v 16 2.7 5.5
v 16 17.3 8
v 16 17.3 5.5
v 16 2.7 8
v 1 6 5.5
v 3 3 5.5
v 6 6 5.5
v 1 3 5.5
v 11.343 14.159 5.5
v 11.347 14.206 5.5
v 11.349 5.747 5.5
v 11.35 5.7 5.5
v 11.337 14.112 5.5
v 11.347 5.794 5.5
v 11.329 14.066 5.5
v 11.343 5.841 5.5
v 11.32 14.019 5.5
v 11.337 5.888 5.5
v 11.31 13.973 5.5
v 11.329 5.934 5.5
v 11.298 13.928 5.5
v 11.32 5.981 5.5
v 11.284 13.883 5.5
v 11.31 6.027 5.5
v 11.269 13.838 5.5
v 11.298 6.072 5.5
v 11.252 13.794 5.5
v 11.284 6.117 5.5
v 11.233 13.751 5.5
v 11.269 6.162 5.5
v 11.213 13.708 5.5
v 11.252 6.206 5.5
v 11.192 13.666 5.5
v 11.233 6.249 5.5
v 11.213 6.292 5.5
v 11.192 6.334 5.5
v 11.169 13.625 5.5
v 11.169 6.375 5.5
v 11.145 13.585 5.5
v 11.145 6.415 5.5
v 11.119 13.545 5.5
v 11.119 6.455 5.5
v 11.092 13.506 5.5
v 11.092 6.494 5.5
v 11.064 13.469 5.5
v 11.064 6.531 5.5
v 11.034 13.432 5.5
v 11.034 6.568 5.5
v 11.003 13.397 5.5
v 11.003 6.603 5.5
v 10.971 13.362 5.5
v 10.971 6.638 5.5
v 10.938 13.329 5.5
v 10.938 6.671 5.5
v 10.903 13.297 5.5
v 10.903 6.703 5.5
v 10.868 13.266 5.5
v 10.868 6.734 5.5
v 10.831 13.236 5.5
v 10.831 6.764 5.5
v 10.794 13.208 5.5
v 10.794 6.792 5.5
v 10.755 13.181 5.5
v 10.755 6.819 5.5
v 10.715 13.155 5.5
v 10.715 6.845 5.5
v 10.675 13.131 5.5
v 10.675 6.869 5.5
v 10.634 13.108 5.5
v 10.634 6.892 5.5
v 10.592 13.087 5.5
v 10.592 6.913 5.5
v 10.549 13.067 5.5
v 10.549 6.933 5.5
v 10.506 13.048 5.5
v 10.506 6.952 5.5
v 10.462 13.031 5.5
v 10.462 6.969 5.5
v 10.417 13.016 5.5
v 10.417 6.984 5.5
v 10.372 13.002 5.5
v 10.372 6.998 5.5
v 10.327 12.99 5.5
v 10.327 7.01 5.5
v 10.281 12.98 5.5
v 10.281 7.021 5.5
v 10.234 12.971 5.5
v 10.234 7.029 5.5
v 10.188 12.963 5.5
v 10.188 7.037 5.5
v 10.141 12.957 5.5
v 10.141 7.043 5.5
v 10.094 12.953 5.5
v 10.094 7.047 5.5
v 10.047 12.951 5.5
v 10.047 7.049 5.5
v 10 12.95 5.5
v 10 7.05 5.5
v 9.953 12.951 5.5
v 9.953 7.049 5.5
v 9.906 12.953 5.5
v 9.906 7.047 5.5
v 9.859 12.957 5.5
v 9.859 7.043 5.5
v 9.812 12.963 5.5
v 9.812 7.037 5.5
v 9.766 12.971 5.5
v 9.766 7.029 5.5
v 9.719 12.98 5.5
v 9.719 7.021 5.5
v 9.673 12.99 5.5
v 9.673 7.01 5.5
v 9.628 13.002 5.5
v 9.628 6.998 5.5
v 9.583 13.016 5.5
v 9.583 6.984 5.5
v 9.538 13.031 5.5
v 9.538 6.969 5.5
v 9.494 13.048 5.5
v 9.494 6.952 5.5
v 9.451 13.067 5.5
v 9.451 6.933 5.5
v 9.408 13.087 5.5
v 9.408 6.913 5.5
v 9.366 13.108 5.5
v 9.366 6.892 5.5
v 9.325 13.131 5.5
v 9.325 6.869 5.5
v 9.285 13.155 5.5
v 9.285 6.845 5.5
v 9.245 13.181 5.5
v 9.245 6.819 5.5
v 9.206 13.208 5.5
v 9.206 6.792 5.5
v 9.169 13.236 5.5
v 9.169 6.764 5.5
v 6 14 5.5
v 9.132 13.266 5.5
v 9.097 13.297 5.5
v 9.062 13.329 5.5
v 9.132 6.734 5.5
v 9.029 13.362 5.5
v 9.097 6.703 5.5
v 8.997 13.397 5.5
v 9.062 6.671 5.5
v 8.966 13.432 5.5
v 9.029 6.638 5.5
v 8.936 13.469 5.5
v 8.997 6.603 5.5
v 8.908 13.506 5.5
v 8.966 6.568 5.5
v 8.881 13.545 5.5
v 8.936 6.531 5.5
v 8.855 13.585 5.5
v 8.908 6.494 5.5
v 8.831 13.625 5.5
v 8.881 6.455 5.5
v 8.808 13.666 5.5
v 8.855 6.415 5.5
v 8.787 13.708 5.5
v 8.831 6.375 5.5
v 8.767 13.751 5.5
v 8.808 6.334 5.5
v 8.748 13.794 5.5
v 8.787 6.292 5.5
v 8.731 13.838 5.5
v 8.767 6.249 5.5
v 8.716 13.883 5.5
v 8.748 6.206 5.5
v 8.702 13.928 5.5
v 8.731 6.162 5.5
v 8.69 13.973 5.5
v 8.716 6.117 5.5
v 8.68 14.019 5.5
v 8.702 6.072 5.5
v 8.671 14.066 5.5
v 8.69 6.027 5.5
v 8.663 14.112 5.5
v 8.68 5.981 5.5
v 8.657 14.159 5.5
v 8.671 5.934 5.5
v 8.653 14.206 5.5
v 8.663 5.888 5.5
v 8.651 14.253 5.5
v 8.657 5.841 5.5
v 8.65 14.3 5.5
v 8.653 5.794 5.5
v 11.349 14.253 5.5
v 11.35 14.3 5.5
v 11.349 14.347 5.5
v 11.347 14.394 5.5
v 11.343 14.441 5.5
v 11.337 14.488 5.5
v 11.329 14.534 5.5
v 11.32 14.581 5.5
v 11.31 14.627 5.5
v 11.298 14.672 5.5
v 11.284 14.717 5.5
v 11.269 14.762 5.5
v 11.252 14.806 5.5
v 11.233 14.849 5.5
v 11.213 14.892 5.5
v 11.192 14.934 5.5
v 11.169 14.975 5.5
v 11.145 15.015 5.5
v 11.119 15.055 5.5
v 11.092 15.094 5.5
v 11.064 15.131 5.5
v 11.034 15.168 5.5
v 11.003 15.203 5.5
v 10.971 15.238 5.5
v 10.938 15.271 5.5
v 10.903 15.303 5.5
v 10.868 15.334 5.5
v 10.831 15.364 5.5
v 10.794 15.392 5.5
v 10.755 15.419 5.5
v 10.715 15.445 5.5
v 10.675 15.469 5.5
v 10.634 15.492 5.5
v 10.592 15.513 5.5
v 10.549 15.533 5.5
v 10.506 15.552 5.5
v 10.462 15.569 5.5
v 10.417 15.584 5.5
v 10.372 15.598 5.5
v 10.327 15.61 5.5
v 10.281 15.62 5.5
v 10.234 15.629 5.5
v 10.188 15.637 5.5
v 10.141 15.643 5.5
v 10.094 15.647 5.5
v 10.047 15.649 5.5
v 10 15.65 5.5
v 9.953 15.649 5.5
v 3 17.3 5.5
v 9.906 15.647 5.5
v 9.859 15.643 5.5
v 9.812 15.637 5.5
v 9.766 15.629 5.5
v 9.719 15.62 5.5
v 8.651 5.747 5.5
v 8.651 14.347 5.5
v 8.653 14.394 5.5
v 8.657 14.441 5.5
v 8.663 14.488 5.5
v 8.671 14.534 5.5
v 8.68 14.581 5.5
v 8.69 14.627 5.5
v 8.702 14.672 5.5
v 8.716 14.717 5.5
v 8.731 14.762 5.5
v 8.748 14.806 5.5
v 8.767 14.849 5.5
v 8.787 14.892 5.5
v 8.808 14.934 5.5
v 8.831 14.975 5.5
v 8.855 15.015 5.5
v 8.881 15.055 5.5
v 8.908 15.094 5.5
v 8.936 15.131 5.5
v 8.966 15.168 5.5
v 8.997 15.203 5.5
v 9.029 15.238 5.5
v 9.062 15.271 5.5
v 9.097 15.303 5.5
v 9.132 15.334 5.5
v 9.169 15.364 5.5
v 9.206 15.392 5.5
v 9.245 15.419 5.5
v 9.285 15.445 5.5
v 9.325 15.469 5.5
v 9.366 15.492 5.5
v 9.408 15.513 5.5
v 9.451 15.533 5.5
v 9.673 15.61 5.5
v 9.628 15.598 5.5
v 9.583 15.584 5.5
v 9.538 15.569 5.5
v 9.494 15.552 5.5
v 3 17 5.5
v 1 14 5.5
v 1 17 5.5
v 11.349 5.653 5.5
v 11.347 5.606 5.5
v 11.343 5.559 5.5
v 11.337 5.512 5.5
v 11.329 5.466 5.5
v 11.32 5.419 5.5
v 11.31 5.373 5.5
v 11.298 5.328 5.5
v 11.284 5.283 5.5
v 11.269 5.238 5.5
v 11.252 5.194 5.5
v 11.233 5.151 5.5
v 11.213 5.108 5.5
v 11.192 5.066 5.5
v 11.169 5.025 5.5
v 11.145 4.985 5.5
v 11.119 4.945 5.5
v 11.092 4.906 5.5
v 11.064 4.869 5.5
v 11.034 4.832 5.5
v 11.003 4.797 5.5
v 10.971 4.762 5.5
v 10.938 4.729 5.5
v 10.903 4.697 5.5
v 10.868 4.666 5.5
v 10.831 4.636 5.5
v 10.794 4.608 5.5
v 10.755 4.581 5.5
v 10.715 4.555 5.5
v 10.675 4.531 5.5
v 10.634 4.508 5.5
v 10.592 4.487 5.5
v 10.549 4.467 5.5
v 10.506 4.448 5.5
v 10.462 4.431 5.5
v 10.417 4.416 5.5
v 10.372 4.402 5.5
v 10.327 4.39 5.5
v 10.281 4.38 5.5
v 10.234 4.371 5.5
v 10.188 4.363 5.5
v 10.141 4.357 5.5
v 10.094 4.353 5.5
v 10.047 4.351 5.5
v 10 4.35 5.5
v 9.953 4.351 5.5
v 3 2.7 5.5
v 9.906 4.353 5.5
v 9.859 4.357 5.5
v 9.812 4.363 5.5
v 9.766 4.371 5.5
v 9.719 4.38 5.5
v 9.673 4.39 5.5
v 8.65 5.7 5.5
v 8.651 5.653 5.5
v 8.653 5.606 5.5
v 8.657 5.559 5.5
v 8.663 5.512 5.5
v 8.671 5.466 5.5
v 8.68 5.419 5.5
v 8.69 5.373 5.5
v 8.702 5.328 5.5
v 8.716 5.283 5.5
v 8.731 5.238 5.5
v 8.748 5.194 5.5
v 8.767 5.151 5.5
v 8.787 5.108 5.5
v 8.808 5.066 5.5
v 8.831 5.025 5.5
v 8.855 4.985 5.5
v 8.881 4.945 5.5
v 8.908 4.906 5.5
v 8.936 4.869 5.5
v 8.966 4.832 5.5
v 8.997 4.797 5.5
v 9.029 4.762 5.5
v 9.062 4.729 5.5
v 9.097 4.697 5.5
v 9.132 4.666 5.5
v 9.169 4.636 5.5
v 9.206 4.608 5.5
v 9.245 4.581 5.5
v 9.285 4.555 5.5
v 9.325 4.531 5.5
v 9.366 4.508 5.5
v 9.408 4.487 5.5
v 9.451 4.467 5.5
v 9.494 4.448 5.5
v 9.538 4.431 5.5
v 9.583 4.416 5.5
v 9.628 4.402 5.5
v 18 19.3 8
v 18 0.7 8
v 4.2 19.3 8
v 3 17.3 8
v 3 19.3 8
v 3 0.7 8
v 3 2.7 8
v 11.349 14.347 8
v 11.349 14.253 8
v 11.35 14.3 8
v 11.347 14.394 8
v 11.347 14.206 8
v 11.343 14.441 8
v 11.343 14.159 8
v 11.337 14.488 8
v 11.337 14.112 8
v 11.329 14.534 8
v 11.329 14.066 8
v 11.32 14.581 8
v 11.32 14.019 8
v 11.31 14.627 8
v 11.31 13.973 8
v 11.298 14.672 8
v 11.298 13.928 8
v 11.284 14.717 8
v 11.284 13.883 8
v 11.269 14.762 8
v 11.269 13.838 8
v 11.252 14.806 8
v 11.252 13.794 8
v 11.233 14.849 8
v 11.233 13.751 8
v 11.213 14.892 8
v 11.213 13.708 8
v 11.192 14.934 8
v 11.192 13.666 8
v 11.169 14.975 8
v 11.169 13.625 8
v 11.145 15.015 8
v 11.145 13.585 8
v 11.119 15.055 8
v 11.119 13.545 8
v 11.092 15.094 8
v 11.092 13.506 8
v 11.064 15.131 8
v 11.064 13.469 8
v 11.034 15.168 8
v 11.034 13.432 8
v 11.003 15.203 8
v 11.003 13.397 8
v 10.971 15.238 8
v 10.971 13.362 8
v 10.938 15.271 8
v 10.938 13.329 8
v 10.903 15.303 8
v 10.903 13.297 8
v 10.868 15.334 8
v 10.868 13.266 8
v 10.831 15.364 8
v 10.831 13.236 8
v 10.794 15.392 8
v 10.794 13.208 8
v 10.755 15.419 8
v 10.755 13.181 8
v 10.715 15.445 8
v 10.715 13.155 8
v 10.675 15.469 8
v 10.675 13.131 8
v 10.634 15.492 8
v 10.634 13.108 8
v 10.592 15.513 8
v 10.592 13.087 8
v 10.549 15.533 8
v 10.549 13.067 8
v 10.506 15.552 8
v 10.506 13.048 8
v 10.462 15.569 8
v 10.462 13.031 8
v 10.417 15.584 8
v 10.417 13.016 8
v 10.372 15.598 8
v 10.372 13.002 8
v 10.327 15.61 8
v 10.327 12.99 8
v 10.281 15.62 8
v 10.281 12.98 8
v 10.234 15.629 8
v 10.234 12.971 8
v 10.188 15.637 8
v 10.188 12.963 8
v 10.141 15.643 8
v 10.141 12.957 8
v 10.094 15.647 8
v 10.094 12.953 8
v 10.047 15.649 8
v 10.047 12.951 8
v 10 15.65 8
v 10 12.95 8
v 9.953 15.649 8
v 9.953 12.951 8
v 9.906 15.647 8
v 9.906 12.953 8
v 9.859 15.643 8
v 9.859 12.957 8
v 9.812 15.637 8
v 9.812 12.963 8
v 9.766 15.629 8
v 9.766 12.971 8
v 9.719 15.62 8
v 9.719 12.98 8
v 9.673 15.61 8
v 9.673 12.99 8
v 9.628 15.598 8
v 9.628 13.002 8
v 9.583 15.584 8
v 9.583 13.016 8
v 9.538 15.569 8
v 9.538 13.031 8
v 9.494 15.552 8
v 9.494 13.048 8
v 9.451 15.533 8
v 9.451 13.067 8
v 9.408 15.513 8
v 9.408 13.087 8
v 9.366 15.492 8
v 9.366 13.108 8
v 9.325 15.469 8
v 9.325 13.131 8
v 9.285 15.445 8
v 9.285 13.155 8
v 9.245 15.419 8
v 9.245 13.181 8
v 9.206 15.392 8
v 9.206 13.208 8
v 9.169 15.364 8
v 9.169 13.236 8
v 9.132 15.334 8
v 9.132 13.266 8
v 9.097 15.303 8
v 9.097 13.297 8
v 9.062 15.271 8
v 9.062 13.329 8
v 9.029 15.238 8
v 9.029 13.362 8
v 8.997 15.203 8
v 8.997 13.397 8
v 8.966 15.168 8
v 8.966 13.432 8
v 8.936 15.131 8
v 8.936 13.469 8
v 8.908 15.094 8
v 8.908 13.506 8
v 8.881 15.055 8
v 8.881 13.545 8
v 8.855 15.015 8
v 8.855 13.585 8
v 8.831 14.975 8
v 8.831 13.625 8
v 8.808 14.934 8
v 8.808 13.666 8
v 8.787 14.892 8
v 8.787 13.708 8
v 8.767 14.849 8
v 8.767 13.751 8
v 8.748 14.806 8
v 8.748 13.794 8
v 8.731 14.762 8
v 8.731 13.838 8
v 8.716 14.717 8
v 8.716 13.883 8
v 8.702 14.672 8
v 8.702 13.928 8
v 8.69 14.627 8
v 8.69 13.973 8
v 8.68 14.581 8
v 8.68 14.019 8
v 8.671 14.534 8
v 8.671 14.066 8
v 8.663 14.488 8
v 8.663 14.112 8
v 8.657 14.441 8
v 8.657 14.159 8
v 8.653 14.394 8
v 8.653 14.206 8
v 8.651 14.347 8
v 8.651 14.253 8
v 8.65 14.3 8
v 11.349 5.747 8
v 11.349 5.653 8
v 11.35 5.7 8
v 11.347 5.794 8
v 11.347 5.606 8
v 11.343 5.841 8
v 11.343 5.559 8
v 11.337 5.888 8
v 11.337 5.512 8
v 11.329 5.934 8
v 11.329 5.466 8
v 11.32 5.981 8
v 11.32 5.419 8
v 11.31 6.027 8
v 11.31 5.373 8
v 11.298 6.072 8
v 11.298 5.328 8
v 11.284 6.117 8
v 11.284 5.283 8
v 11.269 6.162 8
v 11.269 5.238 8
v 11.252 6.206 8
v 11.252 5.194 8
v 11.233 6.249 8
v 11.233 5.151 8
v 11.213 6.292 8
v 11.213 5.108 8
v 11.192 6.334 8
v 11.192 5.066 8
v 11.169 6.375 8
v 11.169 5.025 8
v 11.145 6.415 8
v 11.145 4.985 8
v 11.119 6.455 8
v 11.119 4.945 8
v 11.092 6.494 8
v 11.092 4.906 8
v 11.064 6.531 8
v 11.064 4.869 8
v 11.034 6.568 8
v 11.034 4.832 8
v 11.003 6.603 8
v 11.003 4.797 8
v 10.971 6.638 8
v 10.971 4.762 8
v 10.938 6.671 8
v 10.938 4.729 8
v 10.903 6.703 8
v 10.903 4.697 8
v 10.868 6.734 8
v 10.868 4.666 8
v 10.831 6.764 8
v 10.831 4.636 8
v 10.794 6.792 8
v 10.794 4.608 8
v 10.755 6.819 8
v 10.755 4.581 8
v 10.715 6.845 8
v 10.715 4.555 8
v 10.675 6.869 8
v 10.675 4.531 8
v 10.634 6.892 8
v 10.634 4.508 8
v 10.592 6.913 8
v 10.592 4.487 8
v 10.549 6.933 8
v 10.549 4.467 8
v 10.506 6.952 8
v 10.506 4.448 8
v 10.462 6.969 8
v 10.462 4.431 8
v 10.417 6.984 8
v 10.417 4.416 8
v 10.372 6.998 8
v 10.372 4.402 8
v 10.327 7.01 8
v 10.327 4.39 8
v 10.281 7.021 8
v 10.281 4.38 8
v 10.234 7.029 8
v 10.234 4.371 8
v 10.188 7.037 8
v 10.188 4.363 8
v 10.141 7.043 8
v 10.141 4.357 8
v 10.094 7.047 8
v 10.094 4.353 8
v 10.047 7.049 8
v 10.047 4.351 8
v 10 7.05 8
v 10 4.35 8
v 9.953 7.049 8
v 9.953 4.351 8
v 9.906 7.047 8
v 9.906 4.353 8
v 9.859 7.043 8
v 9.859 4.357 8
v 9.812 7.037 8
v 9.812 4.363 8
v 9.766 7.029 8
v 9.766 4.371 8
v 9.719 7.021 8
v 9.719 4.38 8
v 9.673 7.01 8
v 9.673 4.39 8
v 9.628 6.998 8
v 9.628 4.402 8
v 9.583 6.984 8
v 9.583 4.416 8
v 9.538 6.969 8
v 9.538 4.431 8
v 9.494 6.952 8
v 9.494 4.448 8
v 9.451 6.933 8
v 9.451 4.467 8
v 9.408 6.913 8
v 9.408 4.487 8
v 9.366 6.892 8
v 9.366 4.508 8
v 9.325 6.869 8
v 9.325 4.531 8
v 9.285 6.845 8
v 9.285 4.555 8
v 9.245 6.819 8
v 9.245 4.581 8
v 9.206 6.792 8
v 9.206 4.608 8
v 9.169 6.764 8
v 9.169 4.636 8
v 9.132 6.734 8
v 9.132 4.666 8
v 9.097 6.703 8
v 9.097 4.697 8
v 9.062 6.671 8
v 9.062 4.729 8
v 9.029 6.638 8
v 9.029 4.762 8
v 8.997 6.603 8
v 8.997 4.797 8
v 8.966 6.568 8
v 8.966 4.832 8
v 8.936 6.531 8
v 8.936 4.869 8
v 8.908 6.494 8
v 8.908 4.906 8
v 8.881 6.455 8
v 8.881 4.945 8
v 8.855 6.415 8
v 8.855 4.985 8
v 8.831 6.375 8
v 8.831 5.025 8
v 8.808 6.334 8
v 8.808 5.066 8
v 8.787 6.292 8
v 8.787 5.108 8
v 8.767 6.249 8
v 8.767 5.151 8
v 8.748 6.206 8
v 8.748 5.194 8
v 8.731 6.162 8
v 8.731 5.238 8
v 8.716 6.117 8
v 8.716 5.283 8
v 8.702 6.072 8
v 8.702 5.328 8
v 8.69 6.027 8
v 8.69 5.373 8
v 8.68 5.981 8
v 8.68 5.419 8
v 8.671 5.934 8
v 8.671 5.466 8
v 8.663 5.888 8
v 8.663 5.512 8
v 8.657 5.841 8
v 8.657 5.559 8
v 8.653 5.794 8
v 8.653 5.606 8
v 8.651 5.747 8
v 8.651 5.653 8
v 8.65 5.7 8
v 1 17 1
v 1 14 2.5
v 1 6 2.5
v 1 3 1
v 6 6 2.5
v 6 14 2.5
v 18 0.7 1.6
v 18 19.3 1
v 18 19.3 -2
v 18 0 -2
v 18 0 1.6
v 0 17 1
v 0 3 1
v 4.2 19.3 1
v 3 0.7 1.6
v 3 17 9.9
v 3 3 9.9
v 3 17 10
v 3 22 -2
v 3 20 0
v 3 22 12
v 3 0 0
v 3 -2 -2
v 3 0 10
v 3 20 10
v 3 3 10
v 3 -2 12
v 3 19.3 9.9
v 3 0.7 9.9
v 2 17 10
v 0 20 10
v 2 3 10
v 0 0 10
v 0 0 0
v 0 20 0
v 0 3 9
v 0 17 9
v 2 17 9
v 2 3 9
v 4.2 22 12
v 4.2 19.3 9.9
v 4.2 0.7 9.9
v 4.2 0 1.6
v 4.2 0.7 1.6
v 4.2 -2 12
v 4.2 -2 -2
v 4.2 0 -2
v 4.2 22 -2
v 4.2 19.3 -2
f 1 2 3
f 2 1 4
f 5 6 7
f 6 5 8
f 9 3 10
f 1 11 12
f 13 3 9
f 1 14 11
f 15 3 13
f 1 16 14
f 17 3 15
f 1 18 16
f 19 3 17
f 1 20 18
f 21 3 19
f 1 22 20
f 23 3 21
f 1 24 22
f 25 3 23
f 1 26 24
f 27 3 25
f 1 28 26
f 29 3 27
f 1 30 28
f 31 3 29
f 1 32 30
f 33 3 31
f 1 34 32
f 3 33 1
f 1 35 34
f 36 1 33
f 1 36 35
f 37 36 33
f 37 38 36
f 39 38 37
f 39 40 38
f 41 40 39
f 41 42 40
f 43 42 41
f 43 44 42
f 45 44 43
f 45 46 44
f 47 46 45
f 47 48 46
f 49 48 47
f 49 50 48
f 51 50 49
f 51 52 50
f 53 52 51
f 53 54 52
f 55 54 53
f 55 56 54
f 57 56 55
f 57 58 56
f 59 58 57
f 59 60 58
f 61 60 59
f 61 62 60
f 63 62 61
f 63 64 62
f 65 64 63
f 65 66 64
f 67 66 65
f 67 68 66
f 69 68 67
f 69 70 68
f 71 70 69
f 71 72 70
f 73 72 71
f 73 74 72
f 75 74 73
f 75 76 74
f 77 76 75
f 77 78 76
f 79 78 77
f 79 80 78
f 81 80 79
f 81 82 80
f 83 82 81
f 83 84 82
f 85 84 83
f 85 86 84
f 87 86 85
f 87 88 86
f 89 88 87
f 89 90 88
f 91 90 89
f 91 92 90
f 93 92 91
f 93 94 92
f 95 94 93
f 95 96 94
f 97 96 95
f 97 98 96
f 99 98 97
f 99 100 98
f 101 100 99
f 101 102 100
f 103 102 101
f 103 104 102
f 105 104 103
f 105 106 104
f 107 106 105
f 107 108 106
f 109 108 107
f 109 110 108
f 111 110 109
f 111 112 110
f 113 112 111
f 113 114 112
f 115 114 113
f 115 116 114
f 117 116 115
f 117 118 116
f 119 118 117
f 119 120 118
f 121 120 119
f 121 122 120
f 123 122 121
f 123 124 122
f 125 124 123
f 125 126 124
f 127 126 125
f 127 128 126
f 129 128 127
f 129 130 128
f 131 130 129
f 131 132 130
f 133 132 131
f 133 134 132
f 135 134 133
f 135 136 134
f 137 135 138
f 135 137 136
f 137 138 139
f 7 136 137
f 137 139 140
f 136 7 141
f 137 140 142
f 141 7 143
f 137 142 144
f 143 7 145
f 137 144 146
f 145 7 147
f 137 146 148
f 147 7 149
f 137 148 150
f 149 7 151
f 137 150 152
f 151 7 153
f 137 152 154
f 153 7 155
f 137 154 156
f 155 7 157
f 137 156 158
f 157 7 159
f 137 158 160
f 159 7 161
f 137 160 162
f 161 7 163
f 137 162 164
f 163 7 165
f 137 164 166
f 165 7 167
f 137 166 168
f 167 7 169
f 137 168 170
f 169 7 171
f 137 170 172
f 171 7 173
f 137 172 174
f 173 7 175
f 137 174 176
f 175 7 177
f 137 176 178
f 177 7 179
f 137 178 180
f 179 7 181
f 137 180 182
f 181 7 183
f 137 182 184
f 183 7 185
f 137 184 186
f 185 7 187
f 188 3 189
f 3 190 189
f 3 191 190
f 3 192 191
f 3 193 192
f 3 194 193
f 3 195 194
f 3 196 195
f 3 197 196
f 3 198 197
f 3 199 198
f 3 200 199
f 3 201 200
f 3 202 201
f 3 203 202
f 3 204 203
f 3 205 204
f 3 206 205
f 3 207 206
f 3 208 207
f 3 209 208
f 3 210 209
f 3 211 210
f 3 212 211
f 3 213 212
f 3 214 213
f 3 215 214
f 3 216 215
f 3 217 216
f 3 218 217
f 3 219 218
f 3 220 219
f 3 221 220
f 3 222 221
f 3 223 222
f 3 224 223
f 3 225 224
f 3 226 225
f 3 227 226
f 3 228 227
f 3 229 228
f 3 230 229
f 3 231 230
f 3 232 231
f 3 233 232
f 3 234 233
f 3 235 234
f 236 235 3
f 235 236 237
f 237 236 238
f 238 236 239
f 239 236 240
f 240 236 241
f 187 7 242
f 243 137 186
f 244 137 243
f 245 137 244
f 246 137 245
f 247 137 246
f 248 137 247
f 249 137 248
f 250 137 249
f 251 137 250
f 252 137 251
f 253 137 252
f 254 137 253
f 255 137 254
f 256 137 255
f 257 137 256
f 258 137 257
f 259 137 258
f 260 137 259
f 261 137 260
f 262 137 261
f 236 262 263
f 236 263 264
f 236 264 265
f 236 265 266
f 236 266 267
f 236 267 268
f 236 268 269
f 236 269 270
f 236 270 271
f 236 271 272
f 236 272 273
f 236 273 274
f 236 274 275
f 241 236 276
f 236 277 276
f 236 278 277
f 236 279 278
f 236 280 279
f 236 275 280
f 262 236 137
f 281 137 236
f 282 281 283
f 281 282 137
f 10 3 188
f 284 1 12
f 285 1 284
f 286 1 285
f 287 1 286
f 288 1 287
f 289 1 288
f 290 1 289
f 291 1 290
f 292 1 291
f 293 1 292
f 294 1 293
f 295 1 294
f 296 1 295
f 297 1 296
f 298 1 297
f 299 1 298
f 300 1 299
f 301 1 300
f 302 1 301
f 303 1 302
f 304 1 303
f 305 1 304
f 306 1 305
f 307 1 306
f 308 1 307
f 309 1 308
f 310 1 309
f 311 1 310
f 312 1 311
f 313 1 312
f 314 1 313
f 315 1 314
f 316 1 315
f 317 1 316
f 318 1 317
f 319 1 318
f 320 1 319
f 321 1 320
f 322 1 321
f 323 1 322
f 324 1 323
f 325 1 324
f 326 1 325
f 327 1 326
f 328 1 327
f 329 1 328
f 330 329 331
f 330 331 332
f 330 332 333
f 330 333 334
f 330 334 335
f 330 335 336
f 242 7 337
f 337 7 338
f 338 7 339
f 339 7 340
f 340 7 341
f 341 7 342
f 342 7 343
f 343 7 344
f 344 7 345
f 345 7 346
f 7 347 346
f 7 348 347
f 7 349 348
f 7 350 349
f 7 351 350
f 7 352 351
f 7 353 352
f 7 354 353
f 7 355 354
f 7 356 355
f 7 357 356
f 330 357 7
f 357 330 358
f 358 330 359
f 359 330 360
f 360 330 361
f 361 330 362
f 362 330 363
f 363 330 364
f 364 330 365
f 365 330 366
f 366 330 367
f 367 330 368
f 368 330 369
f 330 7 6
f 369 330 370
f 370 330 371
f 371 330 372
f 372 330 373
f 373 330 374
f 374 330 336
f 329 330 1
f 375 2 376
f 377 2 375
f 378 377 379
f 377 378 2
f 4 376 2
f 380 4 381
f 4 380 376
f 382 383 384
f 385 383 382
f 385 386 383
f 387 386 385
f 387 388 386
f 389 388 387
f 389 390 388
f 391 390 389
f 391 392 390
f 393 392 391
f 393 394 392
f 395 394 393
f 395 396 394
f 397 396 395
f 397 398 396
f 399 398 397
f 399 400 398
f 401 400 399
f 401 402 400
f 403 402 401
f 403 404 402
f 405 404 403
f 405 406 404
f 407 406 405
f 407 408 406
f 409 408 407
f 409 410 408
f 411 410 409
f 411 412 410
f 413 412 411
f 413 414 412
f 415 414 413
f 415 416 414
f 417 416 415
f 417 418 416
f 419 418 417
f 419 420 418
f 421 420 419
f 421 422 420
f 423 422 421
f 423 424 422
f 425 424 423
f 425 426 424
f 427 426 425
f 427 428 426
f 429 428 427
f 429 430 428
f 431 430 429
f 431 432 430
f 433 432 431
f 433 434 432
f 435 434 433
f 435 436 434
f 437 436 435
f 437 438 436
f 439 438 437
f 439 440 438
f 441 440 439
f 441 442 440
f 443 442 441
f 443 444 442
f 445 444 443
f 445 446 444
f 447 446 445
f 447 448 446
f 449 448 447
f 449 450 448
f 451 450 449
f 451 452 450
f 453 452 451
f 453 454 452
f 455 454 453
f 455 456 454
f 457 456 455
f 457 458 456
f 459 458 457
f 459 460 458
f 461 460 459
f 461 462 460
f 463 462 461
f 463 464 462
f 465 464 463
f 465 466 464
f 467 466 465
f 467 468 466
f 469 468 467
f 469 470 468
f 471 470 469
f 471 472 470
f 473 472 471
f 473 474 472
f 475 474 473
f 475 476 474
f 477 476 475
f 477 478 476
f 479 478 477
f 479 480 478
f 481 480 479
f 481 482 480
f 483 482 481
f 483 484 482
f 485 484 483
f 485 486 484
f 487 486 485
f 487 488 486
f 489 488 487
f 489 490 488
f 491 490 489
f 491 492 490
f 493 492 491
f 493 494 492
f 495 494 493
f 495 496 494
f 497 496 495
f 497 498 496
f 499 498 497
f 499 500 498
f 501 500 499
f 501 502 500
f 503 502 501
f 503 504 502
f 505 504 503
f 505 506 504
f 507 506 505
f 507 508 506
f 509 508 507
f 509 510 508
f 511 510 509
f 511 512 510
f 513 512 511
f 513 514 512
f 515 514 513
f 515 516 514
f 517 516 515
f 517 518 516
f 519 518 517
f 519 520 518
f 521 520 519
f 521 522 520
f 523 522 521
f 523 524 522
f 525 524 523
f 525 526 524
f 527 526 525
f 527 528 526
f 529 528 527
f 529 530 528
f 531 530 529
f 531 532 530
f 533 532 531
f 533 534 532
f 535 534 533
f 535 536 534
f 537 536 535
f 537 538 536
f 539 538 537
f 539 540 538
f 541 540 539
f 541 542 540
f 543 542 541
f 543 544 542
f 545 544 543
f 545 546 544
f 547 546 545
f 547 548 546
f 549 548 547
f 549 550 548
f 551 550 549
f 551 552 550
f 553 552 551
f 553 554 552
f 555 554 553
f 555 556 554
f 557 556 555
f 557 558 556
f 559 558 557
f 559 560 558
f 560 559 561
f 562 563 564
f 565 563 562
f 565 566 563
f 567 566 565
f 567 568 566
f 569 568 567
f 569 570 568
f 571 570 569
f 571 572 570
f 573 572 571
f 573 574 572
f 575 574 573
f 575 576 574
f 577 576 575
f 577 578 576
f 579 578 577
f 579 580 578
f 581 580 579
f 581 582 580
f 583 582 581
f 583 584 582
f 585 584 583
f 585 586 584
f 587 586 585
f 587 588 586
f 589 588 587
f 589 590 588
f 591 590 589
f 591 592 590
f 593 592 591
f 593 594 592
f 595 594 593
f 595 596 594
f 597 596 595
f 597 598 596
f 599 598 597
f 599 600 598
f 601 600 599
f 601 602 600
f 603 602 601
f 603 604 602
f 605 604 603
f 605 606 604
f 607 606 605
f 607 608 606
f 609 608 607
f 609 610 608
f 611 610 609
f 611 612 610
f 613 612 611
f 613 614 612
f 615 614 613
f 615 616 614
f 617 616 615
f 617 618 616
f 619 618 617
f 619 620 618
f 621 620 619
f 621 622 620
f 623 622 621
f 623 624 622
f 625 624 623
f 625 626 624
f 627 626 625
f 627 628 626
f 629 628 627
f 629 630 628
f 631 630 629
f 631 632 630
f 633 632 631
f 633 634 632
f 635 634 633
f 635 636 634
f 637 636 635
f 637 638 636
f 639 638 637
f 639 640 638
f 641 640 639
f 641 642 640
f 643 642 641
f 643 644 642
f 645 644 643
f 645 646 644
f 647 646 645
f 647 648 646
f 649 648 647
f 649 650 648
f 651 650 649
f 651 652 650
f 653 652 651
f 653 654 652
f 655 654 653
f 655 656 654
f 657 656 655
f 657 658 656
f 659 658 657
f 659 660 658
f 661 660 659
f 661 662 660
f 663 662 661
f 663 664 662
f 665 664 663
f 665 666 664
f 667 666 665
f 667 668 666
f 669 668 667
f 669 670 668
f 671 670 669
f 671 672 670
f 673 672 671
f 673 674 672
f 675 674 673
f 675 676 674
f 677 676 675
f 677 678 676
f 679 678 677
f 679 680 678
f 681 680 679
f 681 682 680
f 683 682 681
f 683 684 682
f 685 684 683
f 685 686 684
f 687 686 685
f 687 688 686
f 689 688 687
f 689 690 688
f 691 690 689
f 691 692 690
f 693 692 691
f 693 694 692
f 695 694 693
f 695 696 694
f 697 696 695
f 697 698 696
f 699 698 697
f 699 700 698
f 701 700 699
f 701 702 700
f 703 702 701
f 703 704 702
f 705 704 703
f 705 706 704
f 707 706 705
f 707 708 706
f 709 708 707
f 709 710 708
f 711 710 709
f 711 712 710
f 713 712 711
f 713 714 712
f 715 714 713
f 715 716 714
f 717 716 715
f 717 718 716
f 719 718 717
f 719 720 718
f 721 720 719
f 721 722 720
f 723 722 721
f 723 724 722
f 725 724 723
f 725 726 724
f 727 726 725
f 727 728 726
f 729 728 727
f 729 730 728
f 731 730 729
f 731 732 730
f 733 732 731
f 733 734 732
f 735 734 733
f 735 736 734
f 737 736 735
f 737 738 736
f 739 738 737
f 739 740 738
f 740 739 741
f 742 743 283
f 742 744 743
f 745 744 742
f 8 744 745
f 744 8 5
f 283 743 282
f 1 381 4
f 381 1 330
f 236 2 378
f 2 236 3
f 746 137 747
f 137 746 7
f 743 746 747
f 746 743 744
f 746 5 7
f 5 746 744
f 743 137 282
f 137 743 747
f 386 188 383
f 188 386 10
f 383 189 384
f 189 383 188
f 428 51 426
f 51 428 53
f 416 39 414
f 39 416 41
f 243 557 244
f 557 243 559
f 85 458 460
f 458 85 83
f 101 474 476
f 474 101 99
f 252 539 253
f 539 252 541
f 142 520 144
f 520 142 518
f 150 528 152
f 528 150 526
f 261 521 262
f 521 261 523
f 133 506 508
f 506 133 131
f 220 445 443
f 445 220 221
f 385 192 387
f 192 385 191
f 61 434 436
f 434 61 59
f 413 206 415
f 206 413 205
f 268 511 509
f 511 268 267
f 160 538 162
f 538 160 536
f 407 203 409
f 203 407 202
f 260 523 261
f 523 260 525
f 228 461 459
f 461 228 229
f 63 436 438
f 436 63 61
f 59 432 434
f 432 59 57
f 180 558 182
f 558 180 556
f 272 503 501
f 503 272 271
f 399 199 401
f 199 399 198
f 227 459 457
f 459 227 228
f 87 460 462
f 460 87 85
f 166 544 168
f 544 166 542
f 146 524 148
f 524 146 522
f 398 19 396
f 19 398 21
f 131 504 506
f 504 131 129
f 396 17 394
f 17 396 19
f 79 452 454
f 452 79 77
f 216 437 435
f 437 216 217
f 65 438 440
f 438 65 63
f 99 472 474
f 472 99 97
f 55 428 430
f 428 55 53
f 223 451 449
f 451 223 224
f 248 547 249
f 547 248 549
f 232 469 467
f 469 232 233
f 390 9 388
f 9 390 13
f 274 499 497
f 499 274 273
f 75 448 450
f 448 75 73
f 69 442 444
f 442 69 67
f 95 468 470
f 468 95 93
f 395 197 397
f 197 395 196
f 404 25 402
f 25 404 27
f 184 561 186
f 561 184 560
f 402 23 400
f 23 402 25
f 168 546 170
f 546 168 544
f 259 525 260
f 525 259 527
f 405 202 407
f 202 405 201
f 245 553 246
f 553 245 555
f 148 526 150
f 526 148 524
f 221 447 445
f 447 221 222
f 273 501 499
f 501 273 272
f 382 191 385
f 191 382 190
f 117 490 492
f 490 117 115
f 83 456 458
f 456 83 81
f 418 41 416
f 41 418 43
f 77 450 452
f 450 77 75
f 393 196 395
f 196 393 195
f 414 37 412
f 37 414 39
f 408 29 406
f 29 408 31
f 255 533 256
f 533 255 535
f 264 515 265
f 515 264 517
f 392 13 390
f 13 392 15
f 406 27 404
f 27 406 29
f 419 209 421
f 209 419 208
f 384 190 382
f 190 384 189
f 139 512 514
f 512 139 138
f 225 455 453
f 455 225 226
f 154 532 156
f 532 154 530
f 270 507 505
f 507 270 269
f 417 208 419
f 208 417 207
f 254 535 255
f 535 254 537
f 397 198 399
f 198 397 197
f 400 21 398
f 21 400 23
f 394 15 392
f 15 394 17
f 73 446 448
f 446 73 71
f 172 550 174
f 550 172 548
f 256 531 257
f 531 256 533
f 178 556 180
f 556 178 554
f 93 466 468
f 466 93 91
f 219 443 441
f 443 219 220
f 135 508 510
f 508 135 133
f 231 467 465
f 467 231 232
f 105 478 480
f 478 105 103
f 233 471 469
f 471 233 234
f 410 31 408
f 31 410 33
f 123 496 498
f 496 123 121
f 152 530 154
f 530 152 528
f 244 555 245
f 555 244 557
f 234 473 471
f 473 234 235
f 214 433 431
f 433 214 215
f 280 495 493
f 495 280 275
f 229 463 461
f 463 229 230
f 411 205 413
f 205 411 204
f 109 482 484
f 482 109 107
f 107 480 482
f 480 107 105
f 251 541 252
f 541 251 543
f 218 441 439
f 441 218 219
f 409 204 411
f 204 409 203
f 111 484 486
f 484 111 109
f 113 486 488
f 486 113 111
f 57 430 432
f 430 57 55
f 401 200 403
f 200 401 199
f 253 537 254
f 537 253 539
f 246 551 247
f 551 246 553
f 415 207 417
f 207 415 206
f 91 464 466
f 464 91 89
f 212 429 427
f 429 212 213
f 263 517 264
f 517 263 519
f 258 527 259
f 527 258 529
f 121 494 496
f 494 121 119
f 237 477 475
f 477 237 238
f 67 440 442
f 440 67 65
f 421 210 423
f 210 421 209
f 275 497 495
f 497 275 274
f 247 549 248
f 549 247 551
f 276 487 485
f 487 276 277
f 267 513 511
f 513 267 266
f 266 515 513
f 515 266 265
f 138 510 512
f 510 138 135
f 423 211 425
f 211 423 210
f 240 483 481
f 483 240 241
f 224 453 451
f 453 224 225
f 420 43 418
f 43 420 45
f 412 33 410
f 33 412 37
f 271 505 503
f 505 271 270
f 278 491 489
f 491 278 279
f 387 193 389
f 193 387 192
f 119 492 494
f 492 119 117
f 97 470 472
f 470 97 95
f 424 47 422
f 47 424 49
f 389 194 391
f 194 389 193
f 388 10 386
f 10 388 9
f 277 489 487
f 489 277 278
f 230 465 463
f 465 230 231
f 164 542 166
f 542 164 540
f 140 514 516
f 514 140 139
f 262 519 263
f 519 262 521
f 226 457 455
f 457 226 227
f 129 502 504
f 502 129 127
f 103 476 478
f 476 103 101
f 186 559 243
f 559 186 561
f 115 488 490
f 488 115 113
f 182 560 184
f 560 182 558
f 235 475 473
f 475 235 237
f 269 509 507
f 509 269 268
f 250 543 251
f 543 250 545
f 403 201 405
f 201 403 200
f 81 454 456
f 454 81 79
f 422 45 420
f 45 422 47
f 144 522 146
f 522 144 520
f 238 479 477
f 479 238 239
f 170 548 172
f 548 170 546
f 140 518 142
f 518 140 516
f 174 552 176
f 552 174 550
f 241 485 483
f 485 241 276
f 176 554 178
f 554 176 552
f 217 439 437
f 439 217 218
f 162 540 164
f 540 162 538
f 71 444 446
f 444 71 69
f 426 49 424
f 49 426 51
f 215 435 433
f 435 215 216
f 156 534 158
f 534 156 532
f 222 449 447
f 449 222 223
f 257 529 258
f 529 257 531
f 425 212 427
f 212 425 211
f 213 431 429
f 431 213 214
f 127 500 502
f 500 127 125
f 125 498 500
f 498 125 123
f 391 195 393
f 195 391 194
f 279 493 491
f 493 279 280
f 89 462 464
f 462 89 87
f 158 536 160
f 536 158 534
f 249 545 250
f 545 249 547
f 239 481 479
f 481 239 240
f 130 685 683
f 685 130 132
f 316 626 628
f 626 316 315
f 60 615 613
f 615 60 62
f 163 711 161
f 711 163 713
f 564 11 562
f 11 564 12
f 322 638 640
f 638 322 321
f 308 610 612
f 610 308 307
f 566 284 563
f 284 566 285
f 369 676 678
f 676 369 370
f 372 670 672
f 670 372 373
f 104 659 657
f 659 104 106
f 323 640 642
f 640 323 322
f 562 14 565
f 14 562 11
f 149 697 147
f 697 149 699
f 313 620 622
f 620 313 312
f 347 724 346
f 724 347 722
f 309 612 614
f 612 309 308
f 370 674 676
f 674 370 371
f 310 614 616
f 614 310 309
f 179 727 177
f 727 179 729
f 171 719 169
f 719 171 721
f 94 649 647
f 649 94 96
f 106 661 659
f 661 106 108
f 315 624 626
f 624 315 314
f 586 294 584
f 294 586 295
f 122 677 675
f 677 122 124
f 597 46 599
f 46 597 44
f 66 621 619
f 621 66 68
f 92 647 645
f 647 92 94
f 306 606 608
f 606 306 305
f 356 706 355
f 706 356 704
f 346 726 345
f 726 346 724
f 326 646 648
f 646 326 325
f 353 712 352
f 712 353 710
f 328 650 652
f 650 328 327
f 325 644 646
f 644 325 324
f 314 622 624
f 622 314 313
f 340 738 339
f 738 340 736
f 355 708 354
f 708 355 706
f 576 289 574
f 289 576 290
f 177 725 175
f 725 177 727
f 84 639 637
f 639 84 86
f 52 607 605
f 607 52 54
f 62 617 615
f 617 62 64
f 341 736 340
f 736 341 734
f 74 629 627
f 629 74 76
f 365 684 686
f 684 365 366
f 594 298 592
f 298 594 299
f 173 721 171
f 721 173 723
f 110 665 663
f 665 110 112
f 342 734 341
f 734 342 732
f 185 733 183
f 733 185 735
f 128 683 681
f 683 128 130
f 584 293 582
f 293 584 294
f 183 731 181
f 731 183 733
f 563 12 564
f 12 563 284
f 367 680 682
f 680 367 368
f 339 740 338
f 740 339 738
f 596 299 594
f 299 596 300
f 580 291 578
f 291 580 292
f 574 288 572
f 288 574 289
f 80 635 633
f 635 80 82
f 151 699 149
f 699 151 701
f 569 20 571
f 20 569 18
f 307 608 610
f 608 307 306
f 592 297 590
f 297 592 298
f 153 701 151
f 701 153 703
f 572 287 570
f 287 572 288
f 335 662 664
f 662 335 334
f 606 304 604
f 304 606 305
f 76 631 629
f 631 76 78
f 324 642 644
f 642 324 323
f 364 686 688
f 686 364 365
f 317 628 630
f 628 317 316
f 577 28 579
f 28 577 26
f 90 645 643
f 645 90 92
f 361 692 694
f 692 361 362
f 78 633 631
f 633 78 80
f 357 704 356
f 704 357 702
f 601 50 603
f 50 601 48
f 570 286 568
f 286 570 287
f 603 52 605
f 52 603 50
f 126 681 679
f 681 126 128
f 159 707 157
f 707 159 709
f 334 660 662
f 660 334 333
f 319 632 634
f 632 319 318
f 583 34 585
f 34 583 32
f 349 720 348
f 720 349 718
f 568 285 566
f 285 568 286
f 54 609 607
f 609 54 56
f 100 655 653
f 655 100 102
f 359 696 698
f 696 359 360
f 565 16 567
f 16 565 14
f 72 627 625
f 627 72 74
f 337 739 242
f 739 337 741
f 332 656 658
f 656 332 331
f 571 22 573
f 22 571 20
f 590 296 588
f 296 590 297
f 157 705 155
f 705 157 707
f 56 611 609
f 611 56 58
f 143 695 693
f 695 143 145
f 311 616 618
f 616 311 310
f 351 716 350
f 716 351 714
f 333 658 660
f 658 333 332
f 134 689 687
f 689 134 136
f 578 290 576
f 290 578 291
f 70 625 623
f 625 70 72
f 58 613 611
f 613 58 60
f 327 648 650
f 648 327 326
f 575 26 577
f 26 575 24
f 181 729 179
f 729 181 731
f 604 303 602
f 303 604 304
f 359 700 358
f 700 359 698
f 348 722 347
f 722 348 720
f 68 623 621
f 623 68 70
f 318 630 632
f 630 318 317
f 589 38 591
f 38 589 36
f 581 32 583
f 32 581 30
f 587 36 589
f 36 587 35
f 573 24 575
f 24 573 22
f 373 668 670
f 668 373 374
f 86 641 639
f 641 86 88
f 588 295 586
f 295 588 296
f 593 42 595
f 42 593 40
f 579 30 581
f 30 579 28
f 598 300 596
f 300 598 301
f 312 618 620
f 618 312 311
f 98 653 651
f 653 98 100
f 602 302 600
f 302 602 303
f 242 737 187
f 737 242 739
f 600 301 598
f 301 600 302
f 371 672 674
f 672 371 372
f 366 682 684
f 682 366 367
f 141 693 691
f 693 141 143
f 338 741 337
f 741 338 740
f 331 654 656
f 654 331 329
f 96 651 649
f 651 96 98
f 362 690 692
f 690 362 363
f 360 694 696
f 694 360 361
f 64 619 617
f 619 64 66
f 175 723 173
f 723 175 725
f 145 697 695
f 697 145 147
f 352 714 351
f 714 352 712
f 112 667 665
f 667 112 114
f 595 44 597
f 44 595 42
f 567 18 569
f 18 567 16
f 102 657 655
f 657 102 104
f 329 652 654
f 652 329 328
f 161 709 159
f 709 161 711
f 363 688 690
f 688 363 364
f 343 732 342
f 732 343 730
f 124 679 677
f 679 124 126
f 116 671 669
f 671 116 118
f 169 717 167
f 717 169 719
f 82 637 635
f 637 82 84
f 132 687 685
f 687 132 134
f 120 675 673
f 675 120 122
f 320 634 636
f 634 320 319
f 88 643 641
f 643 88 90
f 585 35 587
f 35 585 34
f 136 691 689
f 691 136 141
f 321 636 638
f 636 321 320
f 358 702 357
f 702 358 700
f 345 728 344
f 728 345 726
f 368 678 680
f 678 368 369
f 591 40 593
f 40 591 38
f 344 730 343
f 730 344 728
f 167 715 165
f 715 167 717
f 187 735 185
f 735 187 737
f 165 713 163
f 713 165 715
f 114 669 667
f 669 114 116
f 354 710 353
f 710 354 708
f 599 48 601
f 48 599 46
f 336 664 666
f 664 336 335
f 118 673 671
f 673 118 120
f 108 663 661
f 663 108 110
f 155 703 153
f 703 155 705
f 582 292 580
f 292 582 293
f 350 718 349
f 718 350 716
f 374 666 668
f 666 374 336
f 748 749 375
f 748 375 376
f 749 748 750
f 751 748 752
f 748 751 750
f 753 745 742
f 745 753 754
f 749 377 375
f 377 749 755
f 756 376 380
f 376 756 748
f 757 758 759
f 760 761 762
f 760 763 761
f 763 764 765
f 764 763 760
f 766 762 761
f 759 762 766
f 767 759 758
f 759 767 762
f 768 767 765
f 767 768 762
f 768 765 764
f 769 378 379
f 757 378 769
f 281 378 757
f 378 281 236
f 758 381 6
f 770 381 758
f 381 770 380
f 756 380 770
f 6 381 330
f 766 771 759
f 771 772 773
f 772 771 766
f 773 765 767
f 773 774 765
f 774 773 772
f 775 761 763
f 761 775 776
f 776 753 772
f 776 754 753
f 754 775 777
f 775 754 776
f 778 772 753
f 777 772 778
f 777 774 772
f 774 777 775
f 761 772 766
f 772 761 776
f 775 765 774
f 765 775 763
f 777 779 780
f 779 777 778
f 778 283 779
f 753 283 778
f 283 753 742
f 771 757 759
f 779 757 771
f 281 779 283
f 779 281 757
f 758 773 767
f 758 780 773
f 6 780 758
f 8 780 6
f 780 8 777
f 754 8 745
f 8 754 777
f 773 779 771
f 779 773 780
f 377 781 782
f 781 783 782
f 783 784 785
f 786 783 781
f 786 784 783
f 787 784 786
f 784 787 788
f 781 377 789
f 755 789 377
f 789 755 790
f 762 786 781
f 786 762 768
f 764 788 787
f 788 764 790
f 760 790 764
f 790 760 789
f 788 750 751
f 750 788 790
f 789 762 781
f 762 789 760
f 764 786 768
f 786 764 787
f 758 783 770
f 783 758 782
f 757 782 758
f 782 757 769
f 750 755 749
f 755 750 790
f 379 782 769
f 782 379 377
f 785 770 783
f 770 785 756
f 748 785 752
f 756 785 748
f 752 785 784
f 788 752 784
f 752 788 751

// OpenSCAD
// file: hggh/mico_usb_breakout_holder_green.scad
USB_PCB_SIZE_X = 15;
USB_PCB_SIZE_Y = 14.6;
USB_PCB_SIZE_Z =  2.5;

HOLDER_SIZE_X = USB_PCB_SIZE_X + 2;
HOLDER_SIZE_Y = USB_PCB_SIZE_Y + 4;

USB_CONN_X = 5.0;
USB_CONN_Y = 8.0;
USB_CONN_Z = 3.0;

module _pcb_micro_usb_breakout_green() {
    difference() {
        union() {
            cube([USB_PCB_SIZE_X, USB_PCB_SIZE_Y, USB_PCB_SIZE_Z]);
            translate([0, (USB_PCB_SIZE_Y-USB_CONN_Y)/2, USB_PCB_SIZE_Z]) {
                cube([USB_CONN_X, USB_CONN_Y, USB_CONN_Z]);
            }
        }
        translate([9, 3.0, -1])
            cylinder(d=2.7, h=100, $fn=180);
        translate([9, USB_PCB_SIZE_Y- 3.0, -1])
            cylinder(d=2.7, h=100, $fn=180);
    }
}


module mico_usb_breakout_holder_green() {
    difference() {
        cube([HOLDER_SIZE_X, HOLDER_SIZE_Y, 7]);
        rotate([180, 0, 0])
        translate([0, -HOLDER_SIZE_Y +2 , -7]) _pcb_micro_usb_breakout_green();
    }
 
}
// main file
use <hggh/mico_usb_breakout_holder_green.scad>


module back() {
    difference() {
        cube([1.2, 24, 14]);
        translate([-1, (24-14.6-4)/2, (14-7)/2]) cube([3, 14.6+4, 8.4]);
    }
}

difference() {
    cube([3, 20, 10]);
    translate([-1, (20-14)/2, (10-8)/2]) cube([5, 14, 8]);
    translate([2, (20-14)/2, 8]) cube([2, 14, 2]);
}
translate([1, (20 - 14.6 -4)/2, 1]) mico_usb_breakout_holder_green();
translate([3, -2, -2]) back();
translate([3, 0, -2]) cube([15, 19.3, 3.6]);
